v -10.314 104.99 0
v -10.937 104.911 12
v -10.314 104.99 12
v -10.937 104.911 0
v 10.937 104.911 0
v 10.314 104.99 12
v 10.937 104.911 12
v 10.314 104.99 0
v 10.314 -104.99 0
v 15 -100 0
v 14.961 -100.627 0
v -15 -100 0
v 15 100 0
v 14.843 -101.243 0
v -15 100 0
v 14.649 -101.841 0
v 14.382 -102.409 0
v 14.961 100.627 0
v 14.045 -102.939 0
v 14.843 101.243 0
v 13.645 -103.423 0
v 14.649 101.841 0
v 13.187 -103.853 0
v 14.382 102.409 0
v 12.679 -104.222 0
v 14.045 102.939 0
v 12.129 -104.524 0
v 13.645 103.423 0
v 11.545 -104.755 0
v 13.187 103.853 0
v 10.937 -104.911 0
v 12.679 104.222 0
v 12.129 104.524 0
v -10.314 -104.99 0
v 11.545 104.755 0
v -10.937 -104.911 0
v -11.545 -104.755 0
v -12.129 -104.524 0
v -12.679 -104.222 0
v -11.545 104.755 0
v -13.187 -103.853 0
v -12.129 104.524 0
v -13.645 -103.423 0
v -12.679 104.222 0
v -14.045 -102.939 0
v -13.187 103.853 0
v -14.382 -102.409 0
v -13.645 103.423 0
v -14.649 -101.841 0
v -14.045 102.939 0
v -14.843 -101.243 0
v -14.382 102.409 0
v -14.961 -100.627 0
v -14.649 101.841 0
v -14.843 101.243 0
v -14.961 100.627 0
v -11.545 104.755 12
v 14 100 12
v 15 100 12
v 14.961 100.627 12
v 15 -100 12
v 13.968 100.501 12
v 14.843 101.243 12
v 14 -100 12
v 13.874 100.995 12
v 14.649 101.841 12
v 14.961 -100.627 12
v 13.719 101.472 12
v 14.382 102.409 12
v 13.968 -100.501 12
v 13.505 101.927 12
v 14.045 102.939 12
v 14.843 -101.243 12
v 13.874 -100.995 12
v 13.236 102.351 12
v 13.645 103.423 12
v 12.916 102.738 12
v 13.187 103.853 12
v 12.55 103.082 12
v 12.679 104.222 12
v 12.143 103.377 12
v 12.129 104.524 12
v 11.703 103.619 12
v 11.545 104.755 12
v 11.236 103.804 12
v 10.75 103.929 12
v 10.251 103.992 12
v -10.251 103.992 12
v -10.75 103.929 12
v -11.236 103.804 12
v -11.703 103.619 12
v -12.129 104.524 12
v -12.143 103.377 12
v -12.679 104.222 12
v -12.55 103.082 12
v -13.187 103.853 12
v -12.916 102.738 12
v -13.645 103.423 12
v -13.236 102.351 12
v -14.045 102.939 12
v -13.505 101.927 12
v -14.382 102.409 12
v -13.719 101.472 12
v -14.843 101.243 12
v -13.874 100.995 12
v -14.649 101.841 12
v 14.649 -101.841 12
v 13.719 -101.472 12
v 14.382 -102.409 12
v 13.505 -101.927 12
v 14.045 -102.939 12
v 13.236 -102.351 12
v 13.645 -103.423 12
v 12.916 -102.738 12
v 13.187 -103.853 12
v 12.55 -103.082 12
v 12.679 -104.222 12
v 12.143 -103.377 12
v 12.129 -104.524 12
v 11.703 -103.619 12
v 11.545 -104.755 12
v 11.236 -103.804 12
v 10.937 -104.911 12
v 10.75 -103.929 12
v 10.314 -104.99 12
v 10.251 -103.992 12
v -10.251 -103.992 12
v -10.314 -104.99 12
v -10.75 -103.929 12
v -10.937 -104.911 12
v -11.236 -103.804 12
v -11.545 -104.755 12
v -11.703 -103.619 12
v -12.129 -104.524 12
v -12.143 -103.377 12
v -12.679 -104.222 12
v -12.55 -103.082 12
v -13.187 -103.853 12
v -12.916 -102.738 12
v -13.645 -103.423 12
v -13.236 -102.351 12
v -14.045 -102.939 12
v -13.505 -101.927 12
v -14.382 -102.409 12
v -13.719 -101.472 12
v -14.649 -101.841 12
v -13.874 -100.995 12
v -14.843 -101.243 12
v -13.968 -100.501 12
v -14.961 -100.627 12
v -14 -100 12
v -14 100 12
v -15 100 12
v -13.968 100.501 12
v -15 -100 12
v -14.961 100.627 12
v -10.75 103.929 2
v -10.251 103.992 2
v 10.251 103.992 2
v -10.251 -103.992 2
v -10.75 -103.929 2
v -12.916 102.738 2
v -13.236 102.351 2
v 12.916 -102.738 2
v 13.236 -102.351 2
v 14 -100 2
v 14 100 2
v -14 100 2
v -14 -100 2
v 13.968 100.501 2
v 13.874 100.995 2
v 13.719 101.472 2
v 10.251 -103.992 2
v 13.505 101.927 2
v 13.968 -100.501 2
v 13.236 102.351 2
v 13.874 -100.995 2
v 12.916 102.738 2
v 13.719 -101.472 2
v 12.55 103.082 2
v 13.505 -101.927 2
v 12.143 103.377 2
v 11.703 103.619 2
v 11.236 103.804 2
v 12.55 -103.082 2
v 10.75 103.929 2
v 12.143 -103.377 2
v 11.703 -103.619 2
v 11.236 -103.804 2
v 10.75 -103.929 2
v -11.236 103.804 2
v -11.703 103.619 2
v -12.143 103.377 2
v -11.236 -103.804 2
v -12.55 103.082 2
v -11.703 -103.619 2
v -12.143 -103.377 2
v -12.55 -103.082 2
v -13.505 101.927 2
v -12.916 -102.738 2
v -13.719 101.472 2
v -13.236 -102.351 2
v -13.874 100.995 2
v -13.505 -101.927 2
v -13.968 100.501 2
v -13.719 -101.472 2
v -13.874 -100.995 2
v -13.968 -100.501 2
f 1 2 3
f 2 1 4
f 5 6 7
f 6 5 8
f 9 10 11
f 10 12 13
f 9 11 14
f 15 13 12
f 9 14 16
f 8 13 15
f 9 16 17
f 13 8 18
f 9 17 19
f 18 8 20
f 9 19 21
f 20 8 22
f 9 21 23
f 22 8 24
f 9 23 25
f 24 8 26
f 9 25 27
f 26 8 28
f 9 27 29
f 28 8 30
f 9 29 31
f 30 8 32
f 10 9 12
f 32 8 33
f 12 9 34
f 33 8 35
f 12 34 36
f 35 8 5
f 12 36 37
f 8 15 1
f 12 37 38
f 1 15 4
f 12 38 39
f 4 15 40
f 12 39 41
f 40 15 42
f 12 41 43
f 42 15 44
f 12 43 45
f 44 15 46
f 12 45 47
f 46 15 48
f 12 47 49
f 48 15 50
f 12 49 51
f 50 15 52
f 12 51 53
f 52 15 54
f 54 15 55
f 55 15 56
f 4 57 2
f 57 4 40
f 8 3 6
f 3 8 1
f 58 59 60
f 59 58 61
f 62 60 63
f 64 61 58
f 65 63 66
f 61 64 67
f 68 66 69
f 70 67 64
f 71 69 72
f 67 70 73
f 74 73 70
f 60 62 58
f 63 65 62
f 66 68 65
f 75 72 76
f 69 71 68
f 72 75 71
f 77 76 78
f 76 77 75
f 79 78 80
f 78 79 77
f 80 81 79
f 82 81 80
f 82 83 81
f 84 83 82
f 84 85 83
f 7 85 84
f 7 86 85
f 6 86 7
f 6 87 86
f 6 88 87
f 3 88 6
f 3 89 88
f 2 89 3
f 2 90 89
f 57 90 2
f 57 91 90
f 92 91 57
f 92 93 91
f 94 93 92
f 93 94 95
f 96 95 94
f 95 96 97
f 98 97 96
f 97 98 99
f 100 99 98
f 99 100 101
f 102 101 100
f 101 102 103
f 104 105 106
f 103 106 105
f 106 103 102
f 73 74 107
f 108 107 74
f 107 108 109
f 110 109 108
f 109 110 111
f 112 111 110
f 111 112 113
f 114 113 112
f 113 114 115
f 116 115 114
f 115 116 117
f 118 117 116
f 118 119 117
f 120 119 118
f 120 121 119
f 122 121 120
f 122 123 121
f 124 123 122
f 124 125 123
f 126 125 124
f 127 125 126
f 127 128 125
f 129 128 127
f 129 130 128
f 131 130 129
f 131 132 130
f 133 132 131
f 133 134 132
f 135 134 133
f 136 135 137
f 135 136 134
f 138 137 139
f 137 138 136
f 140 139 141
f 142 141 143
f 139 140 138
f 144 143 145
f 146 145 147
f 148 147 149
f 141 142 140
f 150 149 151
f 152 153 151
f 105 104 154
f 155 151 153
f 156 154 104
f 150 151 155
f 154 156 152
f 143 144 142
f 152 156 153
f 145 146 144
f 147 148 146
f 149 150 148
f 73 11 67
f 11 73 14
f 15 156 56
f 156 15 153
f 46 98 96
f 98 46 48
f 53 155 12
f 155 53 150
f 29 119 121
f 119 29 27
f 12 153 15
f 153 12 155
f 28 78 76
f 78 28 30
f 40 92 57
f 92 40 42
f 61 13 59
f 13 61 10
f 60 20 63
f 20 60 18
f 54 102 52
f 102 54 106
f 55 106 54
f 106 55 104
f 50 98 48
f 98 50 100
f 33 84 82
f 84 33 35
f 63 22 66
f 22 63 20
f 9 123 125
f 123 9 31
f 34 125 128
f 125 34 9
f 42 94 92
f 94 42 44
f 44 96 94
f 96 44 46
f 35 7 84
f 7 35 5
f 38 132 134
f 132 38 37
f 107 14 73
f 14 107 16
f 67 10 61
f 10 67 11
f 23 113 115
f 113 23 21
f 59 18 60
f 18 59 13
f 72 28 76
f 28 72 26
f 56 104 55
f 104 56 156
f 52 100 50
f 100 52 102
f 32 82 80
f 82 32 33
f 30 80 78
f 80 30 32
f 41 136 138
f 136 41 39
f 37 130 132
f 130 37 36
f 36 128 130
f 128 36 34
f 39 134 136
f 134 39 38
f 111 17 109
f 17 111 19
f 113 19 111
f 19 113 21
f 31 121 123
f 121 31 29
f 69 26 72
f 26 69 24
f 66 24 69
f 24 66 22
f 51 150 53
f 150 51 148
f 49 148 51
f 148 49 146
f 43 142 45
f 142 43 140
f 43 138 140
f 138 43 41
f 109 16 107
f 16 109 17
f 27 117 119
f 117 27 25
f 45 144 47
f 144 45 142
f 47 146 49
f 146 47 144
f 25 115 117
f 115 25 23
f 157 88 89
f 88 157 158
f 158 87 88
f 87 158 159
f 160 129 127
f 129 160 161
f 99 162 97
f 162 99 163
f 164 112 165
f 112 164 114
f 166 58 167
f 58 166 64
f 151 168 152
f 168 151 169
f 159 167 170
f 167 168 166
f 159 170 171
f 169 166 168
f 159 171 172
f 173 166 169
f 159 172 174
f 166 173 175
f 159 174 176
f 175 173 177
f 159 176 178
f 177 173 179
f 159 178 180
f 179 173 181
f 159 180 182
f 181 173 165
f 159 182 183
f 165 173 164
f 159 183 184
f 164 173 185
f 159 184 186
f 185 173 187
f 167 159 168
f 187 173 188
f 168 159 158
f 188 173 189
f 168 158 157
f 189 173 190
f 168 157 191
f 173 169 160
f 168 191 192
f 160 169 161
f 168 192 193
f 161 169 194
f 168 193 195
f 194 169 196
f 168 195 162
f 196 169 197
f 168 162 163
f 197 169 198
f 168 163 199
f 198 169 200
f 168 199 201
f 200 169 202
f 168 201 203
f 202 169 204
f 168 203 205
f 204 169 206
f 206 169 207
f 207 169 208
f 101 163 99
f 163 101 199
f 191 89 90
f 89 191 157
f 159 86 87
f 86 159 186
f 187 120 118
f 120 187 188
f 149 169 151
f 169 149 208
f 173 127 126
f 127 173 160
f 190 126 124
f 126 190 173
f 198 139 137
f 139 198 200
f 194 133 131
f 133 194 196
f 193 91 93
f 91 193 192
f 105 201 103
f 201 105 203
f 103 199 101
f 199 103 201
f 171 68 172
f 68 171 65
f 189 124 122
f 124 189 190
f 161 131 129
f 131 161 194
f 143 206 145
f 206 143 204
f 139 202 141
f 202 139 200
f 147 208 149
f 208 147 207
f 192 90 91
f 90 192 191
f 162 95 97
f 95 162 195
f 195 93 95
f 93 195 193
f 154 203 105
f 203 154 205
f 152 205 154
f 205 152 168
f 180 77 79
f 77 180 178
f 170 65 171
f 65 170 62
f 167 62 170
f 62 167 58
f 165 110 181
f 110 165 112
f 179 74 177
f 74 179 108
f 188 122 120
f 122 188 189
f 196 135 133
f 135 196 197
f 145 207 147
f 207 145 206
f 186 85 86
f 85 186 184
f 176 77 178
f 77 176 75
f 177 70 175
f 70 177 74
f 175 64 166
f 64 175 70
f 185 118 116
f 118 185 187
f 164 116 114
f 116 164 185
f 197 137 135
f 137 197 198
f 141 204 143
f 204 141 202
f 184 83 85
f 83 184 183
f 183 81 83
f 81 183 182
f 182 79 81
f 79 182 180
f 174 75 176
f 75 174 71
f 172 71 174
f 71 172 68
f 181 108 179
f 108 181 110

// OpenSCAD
$fn = 50;


difference() {
	union() {
		hull() {
			translate(v = [-10.0000000000, 100.0000000000, 0]) {
				cylinder(h = 12, r = 5);
			}
			translate(v = [10.0000000000, 100.0000000000, 0]) {
				cylinder(h = 12, r = 5);
			}
			translate(v = [-10.0000000000, -100.0000000000, 0]) {
				cylinder(h = 12, r = 5);
			}
			translate(v = [10.0000000000, -100.0000000000, 0]) {
				cylinder(h = 12, r = 5);
			}
		}
	}
	union() {
		translate(v = [0, 0, 2]) {
			hull() {
				translate(v = [-10.0000000000, 100.0000000000, 0]) {
					cylinder(h = 10, r = 4);
				}
				translate(v = [10.0000000000, 100.0000000000, 0]) {
					cylinder(h = 10, r = 4);
				}
				translate(v = [-10.0000000000, -100.0000000000, 0]) {
					cylinder(h = 10, r = 4);
				}
				translate(v = [10.0000000000, -100.0000000000, 0]) {
					cylinder(h = 10, r = 4);
				}
			}
		}
	}
}
